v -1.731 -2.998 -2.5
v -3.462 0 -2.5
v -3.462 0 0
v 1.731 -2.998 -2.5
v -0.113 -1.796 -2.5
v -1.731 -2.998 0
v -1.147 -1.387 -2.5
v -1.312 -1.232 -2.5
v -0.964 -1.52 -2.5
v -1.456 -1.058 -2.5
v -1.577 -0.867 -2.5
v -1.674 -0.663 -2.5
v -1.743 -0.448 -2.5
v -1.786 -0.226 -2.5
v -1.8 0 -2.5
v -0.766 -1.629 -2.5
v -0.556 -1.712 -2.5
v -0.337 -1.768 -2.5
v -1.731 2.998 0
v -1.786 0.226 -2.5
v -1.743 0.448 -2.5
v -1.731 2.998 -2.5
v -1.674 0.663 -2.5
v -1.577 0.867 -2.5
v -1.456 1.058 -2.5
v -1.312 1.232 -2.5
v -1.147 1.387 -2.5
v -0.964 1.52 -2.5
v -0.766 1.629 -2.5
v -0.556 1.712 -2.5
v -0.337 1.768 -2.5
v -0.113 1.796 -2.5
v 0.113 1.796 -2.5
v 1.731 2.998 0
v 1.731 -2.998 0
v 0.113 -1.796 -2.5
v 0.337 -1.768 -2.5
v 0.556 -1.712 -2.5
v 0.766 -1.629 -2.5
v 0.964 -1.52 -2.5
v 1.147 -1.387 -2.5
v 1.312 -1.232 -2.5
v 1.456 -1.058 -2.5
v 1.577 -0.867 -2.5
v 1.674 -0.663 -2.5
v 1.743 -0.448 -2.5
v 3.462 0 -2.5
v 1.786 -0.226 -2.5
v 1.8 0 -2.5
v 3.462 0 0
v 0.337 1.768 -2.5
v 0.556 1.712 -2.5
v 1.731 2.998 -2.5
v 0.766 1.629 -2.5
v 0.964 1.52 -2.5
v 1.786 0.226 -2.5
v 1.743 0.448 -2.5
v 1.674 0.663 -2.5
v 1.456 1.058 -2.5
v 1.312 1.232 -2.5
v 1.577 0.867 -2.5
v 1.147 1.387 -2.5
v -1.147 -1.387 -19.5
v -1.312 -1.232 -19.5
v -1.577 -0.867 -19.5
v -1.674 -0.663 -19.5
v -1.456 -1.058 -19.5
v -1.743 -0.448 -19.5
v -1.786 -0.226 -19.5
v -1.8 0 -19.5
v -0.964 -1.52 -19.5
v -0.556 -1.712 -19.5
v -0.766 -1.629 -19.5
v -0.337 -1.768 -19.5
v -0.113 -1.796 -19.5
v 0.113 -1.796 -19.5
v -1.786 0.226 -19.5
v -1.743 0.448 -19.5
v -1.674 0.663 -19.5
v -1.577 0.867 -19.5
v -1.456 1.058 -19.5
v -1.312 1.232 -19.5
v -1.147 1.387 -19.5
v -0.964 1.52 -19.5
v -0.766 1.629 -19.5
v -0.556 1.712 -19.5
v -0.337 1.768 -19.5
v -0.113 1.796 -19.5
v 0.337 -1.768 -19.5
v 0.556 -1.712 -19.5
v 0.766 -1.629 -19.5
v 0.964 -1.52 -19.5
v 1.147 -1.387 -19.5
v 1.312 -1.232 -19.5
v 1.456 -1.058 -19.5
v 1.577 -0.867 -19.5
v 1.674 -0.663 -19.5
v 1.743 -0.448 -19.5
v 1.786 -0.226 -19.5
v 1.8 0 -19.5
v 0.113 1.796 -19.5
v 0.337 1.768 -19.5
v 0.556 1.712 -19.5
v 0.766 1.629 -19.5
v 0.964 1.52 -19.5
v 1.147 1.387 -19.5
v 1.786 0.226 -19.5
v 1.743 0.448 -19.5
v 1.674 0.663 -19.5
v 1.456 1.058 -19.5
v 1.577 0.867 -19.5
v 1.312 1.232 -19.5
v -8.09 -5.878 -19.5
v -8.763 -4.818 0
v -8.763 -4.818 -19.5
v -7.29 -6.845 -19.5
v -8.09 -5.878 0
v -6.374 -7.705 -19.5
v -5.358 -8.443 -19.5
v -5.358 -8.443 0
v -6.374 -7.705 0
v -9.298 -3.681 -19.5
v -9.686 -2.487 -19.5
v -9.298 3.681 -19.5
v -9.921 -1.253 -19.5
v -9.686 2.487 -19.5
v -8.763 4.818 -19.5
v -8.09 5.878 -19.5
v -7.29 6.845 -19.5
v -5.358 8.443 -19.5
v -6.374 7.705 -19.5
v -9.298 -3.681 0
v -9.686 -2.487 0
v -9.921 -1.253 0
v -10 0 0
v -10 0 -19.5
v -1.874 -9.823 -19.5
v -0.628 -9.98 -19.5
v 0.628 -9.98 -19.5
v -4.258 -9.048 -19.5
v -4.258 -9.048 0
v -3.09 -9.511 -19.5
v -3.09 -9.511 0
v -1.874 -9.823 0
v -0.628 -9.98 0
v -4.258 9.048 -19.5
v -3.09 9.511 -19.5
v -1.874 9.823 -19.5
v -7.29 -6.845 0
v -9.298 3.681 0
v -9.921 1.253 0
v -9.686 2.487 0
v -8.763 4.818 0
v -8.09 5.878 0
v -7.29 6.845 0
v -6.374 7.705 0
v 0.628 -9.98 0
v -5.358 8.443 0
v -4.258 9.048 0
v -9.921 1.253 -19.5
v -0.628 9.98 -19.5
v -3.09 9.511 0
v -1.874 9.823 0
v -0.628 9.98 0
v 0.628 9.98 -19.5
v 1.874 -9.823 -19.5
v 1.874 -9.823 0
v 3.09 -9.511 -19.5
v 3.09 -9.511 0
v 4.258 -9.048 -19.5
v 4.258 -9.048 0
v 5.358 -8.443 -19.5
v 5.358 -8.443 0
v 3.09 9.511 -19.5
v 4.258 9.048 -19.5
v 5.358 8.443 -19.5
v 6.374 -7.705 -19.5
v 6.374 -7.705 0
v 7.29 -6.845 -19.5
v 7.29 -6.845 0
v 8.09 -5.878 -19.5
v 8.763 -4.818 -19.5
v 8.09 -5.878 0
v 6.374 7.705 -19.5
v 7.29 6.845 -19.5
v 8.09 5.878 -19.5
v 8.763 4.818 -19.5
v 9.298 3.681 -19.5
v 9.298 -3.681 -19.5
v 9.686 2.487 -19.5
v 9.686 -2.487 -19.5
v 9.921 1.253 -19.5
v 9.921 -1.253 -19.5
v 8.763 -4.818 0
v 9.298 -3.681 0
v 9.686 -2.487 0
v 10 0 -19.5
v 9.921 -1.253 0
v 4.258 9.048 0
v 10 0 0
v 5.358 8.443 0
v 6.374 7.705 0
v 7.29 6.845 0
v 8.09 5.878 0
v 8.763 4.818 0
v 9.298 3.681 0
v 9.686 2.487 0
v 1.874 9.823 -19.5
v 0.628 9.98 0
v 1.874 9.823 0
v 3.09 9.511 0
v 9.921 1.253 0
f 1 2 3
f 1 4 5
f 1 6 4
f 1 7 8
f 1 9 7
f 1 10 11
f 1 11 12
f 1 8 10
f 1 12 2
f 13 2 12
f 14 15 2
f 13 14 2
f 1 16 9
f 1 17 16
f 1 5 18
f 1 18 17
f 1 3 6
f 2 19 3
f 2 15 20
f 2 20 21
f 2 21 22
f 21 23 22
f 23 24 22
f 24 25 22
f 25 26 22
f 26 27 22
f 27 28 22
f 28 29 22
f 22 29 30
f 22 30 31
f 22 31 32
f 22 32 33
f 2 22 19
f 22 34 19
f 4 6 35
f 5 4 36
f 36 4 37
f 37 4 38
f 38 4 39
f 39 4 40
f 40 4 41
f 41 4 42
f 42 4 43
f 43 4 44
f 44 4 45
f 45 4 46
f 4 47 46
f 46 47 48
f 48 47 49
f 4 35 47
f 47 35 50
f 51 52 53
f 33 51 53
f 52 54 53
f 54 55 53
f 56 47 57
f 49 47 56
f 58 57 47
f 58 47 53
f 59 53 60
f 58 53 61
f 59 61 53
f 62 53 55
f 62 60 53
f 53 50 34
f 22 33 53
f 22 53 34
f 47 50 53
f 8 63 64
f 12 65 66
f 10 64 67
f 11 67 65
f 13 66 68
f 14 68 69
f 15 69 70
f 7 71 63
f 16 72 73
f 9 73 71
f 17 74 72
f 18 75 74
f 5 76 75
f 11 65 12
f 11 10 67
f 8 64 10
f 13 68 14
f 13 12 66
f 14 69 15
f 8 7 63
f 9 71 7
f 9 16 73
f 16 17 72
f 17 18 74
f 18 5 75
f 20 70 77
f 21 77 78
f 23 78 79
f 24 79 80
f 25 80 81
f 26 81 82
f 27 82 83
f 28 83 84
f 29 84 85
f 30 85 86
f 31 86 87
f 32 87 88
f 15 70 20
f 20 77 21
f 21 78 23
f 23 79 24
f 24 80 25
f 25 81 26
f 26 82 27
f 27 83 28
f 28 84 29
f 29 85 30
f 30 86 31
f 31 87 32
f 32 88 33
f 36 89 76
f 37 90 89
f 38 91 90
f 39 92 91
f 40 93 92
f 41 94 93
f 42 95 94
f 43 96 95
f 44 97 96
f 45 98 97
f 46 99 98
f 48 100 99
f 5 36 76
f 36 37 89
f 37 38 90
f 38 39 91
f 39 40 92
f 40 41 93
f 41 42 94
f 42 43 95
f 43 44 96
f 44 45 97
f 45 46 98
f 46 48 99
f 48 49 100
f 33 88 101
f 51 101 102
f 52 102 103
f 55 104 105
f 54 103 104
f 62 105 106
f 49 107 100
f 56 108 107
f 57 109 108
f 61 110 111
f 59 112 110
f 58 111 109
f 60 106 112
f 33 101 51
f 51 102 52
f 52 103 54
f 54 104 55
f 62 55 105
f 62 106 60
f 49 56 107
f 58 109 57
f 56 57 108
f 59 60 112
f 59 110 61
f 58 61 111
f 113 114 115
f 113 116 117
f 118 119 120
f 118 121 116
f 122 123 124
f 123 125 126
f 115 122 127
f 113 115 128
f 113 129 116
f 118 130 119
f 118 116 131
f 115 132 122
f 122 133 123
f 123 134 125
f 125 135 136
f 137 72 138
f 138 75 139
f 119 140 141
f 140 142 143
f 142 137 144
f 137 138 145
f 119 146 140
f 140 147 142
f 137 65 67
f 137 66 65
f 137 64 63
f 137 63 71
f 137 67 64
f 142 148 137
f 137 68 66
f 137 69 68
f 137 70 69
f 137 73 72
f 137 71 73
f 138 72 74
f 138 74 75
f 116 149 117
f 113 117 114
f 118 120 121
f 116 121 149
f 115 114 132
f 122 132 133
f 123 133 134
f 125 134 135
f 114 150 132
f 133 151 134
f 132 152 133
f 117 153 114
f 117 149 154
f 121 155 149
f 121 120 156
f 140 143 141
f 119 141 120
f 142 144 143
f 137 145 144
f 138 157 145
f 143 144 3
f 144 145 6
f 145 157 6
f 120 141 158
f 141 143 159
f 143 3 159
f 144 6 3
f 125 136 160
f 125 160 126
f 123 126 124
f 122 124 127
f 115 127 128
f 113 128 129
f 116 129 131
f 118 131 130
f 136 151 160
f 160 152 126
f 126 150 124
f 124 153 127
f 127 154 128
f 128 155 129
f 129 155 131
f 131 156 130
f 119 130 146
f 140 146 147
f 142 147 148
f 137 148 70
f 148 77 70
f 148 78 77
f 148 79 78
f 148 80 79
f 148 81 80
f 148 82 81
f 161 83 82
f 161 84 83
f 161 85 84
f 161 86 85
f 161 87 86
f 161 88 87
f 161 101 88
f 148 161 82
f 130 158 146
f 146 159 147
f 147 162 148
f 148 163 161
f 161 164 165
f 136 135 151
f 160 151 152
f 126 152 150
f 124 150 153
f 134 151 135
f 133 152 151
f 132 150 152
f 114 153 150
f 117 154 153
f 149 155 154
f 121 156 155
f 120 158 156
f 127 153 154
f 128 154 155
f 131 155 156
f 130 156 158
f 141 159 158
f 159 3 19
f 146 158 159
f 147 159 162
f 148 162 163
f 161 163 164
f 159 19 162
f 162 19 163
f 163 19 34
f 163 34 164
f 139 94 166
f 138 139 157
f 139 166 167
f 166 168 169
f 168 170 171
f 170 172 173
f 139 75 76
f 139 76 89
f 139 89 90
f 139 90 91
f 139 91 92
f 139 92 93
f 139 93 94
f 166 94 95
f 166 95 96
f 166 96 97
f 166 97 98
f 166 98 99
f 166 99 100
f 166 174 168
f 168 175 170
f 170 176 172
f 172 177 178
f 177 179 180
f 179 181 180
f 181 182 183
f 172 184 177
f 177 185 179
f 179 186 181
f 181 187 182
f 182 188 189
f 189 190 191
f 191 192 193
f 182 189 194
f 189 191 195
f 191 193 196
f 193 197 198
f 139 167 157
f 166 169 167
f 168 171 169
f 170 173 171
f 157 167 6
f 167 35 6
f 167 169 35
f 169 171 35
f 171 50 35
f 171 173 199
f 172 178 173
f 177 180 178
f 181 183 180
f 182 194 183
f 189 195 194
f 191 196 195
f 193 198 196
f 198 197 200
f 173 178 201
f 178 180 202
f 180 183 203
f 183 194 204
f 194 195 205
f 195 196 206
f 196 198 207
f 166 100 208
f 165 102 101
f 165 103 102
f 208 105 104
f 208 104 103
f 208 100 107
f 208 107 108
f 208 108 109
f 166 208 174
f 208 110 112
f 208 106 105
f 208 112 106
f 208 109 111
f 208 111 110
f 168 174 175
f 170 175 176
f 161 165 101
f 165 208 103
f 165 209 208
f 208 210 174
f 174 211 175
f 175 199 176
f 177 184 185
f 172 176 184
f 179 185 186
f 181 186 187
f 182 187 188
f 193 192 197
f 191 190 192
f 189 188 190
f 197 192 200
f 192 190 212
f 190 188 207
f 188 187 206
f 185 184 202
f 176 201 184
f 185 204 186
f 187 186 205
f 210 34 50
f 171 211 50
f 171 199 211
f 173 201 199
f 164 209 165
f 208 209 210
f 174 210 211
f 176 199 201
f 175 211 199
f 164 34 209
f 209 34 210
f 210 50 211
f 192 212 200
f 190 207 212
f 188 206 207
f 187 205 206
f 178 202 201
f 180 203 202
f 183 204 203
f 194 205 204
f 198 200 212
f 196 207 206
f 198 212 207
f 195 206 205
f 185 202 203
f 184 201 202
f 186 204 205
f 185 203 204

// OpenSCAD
$fn = 50;

difference() {
	union() {
		translate(v = [0, 0, -19.5]) {
			cylinder(h = 19.5, r = 10.0);
		}
	}
	union() {
		translate(v = [0, 0, 0]) {
			rotate(a = [0, 0, 0]) {
				difference() {
					union() {
						translate(v = [0, 0, -2.5]) {
							linear_extrude(height = 2.5) {
								polygon(points = [[3.4619999999999997, 0.0], [1.7310000000000003, 2.9981799479017264], [-1.7309999999999992, 2.9981799479017264], [-3.4619999999999997, 4.2397272186481365e-16], [-1.7310000000000014, -2.998179947901726], [1.7309999999999977, -2.9981799479017277]]);
							}
						}
					}
					union();
				}
			}
		}
		#translate(v = [0, 0, -100.0]) {
			cylinder(h = 200, r = 1.8);
		}
	}
}
